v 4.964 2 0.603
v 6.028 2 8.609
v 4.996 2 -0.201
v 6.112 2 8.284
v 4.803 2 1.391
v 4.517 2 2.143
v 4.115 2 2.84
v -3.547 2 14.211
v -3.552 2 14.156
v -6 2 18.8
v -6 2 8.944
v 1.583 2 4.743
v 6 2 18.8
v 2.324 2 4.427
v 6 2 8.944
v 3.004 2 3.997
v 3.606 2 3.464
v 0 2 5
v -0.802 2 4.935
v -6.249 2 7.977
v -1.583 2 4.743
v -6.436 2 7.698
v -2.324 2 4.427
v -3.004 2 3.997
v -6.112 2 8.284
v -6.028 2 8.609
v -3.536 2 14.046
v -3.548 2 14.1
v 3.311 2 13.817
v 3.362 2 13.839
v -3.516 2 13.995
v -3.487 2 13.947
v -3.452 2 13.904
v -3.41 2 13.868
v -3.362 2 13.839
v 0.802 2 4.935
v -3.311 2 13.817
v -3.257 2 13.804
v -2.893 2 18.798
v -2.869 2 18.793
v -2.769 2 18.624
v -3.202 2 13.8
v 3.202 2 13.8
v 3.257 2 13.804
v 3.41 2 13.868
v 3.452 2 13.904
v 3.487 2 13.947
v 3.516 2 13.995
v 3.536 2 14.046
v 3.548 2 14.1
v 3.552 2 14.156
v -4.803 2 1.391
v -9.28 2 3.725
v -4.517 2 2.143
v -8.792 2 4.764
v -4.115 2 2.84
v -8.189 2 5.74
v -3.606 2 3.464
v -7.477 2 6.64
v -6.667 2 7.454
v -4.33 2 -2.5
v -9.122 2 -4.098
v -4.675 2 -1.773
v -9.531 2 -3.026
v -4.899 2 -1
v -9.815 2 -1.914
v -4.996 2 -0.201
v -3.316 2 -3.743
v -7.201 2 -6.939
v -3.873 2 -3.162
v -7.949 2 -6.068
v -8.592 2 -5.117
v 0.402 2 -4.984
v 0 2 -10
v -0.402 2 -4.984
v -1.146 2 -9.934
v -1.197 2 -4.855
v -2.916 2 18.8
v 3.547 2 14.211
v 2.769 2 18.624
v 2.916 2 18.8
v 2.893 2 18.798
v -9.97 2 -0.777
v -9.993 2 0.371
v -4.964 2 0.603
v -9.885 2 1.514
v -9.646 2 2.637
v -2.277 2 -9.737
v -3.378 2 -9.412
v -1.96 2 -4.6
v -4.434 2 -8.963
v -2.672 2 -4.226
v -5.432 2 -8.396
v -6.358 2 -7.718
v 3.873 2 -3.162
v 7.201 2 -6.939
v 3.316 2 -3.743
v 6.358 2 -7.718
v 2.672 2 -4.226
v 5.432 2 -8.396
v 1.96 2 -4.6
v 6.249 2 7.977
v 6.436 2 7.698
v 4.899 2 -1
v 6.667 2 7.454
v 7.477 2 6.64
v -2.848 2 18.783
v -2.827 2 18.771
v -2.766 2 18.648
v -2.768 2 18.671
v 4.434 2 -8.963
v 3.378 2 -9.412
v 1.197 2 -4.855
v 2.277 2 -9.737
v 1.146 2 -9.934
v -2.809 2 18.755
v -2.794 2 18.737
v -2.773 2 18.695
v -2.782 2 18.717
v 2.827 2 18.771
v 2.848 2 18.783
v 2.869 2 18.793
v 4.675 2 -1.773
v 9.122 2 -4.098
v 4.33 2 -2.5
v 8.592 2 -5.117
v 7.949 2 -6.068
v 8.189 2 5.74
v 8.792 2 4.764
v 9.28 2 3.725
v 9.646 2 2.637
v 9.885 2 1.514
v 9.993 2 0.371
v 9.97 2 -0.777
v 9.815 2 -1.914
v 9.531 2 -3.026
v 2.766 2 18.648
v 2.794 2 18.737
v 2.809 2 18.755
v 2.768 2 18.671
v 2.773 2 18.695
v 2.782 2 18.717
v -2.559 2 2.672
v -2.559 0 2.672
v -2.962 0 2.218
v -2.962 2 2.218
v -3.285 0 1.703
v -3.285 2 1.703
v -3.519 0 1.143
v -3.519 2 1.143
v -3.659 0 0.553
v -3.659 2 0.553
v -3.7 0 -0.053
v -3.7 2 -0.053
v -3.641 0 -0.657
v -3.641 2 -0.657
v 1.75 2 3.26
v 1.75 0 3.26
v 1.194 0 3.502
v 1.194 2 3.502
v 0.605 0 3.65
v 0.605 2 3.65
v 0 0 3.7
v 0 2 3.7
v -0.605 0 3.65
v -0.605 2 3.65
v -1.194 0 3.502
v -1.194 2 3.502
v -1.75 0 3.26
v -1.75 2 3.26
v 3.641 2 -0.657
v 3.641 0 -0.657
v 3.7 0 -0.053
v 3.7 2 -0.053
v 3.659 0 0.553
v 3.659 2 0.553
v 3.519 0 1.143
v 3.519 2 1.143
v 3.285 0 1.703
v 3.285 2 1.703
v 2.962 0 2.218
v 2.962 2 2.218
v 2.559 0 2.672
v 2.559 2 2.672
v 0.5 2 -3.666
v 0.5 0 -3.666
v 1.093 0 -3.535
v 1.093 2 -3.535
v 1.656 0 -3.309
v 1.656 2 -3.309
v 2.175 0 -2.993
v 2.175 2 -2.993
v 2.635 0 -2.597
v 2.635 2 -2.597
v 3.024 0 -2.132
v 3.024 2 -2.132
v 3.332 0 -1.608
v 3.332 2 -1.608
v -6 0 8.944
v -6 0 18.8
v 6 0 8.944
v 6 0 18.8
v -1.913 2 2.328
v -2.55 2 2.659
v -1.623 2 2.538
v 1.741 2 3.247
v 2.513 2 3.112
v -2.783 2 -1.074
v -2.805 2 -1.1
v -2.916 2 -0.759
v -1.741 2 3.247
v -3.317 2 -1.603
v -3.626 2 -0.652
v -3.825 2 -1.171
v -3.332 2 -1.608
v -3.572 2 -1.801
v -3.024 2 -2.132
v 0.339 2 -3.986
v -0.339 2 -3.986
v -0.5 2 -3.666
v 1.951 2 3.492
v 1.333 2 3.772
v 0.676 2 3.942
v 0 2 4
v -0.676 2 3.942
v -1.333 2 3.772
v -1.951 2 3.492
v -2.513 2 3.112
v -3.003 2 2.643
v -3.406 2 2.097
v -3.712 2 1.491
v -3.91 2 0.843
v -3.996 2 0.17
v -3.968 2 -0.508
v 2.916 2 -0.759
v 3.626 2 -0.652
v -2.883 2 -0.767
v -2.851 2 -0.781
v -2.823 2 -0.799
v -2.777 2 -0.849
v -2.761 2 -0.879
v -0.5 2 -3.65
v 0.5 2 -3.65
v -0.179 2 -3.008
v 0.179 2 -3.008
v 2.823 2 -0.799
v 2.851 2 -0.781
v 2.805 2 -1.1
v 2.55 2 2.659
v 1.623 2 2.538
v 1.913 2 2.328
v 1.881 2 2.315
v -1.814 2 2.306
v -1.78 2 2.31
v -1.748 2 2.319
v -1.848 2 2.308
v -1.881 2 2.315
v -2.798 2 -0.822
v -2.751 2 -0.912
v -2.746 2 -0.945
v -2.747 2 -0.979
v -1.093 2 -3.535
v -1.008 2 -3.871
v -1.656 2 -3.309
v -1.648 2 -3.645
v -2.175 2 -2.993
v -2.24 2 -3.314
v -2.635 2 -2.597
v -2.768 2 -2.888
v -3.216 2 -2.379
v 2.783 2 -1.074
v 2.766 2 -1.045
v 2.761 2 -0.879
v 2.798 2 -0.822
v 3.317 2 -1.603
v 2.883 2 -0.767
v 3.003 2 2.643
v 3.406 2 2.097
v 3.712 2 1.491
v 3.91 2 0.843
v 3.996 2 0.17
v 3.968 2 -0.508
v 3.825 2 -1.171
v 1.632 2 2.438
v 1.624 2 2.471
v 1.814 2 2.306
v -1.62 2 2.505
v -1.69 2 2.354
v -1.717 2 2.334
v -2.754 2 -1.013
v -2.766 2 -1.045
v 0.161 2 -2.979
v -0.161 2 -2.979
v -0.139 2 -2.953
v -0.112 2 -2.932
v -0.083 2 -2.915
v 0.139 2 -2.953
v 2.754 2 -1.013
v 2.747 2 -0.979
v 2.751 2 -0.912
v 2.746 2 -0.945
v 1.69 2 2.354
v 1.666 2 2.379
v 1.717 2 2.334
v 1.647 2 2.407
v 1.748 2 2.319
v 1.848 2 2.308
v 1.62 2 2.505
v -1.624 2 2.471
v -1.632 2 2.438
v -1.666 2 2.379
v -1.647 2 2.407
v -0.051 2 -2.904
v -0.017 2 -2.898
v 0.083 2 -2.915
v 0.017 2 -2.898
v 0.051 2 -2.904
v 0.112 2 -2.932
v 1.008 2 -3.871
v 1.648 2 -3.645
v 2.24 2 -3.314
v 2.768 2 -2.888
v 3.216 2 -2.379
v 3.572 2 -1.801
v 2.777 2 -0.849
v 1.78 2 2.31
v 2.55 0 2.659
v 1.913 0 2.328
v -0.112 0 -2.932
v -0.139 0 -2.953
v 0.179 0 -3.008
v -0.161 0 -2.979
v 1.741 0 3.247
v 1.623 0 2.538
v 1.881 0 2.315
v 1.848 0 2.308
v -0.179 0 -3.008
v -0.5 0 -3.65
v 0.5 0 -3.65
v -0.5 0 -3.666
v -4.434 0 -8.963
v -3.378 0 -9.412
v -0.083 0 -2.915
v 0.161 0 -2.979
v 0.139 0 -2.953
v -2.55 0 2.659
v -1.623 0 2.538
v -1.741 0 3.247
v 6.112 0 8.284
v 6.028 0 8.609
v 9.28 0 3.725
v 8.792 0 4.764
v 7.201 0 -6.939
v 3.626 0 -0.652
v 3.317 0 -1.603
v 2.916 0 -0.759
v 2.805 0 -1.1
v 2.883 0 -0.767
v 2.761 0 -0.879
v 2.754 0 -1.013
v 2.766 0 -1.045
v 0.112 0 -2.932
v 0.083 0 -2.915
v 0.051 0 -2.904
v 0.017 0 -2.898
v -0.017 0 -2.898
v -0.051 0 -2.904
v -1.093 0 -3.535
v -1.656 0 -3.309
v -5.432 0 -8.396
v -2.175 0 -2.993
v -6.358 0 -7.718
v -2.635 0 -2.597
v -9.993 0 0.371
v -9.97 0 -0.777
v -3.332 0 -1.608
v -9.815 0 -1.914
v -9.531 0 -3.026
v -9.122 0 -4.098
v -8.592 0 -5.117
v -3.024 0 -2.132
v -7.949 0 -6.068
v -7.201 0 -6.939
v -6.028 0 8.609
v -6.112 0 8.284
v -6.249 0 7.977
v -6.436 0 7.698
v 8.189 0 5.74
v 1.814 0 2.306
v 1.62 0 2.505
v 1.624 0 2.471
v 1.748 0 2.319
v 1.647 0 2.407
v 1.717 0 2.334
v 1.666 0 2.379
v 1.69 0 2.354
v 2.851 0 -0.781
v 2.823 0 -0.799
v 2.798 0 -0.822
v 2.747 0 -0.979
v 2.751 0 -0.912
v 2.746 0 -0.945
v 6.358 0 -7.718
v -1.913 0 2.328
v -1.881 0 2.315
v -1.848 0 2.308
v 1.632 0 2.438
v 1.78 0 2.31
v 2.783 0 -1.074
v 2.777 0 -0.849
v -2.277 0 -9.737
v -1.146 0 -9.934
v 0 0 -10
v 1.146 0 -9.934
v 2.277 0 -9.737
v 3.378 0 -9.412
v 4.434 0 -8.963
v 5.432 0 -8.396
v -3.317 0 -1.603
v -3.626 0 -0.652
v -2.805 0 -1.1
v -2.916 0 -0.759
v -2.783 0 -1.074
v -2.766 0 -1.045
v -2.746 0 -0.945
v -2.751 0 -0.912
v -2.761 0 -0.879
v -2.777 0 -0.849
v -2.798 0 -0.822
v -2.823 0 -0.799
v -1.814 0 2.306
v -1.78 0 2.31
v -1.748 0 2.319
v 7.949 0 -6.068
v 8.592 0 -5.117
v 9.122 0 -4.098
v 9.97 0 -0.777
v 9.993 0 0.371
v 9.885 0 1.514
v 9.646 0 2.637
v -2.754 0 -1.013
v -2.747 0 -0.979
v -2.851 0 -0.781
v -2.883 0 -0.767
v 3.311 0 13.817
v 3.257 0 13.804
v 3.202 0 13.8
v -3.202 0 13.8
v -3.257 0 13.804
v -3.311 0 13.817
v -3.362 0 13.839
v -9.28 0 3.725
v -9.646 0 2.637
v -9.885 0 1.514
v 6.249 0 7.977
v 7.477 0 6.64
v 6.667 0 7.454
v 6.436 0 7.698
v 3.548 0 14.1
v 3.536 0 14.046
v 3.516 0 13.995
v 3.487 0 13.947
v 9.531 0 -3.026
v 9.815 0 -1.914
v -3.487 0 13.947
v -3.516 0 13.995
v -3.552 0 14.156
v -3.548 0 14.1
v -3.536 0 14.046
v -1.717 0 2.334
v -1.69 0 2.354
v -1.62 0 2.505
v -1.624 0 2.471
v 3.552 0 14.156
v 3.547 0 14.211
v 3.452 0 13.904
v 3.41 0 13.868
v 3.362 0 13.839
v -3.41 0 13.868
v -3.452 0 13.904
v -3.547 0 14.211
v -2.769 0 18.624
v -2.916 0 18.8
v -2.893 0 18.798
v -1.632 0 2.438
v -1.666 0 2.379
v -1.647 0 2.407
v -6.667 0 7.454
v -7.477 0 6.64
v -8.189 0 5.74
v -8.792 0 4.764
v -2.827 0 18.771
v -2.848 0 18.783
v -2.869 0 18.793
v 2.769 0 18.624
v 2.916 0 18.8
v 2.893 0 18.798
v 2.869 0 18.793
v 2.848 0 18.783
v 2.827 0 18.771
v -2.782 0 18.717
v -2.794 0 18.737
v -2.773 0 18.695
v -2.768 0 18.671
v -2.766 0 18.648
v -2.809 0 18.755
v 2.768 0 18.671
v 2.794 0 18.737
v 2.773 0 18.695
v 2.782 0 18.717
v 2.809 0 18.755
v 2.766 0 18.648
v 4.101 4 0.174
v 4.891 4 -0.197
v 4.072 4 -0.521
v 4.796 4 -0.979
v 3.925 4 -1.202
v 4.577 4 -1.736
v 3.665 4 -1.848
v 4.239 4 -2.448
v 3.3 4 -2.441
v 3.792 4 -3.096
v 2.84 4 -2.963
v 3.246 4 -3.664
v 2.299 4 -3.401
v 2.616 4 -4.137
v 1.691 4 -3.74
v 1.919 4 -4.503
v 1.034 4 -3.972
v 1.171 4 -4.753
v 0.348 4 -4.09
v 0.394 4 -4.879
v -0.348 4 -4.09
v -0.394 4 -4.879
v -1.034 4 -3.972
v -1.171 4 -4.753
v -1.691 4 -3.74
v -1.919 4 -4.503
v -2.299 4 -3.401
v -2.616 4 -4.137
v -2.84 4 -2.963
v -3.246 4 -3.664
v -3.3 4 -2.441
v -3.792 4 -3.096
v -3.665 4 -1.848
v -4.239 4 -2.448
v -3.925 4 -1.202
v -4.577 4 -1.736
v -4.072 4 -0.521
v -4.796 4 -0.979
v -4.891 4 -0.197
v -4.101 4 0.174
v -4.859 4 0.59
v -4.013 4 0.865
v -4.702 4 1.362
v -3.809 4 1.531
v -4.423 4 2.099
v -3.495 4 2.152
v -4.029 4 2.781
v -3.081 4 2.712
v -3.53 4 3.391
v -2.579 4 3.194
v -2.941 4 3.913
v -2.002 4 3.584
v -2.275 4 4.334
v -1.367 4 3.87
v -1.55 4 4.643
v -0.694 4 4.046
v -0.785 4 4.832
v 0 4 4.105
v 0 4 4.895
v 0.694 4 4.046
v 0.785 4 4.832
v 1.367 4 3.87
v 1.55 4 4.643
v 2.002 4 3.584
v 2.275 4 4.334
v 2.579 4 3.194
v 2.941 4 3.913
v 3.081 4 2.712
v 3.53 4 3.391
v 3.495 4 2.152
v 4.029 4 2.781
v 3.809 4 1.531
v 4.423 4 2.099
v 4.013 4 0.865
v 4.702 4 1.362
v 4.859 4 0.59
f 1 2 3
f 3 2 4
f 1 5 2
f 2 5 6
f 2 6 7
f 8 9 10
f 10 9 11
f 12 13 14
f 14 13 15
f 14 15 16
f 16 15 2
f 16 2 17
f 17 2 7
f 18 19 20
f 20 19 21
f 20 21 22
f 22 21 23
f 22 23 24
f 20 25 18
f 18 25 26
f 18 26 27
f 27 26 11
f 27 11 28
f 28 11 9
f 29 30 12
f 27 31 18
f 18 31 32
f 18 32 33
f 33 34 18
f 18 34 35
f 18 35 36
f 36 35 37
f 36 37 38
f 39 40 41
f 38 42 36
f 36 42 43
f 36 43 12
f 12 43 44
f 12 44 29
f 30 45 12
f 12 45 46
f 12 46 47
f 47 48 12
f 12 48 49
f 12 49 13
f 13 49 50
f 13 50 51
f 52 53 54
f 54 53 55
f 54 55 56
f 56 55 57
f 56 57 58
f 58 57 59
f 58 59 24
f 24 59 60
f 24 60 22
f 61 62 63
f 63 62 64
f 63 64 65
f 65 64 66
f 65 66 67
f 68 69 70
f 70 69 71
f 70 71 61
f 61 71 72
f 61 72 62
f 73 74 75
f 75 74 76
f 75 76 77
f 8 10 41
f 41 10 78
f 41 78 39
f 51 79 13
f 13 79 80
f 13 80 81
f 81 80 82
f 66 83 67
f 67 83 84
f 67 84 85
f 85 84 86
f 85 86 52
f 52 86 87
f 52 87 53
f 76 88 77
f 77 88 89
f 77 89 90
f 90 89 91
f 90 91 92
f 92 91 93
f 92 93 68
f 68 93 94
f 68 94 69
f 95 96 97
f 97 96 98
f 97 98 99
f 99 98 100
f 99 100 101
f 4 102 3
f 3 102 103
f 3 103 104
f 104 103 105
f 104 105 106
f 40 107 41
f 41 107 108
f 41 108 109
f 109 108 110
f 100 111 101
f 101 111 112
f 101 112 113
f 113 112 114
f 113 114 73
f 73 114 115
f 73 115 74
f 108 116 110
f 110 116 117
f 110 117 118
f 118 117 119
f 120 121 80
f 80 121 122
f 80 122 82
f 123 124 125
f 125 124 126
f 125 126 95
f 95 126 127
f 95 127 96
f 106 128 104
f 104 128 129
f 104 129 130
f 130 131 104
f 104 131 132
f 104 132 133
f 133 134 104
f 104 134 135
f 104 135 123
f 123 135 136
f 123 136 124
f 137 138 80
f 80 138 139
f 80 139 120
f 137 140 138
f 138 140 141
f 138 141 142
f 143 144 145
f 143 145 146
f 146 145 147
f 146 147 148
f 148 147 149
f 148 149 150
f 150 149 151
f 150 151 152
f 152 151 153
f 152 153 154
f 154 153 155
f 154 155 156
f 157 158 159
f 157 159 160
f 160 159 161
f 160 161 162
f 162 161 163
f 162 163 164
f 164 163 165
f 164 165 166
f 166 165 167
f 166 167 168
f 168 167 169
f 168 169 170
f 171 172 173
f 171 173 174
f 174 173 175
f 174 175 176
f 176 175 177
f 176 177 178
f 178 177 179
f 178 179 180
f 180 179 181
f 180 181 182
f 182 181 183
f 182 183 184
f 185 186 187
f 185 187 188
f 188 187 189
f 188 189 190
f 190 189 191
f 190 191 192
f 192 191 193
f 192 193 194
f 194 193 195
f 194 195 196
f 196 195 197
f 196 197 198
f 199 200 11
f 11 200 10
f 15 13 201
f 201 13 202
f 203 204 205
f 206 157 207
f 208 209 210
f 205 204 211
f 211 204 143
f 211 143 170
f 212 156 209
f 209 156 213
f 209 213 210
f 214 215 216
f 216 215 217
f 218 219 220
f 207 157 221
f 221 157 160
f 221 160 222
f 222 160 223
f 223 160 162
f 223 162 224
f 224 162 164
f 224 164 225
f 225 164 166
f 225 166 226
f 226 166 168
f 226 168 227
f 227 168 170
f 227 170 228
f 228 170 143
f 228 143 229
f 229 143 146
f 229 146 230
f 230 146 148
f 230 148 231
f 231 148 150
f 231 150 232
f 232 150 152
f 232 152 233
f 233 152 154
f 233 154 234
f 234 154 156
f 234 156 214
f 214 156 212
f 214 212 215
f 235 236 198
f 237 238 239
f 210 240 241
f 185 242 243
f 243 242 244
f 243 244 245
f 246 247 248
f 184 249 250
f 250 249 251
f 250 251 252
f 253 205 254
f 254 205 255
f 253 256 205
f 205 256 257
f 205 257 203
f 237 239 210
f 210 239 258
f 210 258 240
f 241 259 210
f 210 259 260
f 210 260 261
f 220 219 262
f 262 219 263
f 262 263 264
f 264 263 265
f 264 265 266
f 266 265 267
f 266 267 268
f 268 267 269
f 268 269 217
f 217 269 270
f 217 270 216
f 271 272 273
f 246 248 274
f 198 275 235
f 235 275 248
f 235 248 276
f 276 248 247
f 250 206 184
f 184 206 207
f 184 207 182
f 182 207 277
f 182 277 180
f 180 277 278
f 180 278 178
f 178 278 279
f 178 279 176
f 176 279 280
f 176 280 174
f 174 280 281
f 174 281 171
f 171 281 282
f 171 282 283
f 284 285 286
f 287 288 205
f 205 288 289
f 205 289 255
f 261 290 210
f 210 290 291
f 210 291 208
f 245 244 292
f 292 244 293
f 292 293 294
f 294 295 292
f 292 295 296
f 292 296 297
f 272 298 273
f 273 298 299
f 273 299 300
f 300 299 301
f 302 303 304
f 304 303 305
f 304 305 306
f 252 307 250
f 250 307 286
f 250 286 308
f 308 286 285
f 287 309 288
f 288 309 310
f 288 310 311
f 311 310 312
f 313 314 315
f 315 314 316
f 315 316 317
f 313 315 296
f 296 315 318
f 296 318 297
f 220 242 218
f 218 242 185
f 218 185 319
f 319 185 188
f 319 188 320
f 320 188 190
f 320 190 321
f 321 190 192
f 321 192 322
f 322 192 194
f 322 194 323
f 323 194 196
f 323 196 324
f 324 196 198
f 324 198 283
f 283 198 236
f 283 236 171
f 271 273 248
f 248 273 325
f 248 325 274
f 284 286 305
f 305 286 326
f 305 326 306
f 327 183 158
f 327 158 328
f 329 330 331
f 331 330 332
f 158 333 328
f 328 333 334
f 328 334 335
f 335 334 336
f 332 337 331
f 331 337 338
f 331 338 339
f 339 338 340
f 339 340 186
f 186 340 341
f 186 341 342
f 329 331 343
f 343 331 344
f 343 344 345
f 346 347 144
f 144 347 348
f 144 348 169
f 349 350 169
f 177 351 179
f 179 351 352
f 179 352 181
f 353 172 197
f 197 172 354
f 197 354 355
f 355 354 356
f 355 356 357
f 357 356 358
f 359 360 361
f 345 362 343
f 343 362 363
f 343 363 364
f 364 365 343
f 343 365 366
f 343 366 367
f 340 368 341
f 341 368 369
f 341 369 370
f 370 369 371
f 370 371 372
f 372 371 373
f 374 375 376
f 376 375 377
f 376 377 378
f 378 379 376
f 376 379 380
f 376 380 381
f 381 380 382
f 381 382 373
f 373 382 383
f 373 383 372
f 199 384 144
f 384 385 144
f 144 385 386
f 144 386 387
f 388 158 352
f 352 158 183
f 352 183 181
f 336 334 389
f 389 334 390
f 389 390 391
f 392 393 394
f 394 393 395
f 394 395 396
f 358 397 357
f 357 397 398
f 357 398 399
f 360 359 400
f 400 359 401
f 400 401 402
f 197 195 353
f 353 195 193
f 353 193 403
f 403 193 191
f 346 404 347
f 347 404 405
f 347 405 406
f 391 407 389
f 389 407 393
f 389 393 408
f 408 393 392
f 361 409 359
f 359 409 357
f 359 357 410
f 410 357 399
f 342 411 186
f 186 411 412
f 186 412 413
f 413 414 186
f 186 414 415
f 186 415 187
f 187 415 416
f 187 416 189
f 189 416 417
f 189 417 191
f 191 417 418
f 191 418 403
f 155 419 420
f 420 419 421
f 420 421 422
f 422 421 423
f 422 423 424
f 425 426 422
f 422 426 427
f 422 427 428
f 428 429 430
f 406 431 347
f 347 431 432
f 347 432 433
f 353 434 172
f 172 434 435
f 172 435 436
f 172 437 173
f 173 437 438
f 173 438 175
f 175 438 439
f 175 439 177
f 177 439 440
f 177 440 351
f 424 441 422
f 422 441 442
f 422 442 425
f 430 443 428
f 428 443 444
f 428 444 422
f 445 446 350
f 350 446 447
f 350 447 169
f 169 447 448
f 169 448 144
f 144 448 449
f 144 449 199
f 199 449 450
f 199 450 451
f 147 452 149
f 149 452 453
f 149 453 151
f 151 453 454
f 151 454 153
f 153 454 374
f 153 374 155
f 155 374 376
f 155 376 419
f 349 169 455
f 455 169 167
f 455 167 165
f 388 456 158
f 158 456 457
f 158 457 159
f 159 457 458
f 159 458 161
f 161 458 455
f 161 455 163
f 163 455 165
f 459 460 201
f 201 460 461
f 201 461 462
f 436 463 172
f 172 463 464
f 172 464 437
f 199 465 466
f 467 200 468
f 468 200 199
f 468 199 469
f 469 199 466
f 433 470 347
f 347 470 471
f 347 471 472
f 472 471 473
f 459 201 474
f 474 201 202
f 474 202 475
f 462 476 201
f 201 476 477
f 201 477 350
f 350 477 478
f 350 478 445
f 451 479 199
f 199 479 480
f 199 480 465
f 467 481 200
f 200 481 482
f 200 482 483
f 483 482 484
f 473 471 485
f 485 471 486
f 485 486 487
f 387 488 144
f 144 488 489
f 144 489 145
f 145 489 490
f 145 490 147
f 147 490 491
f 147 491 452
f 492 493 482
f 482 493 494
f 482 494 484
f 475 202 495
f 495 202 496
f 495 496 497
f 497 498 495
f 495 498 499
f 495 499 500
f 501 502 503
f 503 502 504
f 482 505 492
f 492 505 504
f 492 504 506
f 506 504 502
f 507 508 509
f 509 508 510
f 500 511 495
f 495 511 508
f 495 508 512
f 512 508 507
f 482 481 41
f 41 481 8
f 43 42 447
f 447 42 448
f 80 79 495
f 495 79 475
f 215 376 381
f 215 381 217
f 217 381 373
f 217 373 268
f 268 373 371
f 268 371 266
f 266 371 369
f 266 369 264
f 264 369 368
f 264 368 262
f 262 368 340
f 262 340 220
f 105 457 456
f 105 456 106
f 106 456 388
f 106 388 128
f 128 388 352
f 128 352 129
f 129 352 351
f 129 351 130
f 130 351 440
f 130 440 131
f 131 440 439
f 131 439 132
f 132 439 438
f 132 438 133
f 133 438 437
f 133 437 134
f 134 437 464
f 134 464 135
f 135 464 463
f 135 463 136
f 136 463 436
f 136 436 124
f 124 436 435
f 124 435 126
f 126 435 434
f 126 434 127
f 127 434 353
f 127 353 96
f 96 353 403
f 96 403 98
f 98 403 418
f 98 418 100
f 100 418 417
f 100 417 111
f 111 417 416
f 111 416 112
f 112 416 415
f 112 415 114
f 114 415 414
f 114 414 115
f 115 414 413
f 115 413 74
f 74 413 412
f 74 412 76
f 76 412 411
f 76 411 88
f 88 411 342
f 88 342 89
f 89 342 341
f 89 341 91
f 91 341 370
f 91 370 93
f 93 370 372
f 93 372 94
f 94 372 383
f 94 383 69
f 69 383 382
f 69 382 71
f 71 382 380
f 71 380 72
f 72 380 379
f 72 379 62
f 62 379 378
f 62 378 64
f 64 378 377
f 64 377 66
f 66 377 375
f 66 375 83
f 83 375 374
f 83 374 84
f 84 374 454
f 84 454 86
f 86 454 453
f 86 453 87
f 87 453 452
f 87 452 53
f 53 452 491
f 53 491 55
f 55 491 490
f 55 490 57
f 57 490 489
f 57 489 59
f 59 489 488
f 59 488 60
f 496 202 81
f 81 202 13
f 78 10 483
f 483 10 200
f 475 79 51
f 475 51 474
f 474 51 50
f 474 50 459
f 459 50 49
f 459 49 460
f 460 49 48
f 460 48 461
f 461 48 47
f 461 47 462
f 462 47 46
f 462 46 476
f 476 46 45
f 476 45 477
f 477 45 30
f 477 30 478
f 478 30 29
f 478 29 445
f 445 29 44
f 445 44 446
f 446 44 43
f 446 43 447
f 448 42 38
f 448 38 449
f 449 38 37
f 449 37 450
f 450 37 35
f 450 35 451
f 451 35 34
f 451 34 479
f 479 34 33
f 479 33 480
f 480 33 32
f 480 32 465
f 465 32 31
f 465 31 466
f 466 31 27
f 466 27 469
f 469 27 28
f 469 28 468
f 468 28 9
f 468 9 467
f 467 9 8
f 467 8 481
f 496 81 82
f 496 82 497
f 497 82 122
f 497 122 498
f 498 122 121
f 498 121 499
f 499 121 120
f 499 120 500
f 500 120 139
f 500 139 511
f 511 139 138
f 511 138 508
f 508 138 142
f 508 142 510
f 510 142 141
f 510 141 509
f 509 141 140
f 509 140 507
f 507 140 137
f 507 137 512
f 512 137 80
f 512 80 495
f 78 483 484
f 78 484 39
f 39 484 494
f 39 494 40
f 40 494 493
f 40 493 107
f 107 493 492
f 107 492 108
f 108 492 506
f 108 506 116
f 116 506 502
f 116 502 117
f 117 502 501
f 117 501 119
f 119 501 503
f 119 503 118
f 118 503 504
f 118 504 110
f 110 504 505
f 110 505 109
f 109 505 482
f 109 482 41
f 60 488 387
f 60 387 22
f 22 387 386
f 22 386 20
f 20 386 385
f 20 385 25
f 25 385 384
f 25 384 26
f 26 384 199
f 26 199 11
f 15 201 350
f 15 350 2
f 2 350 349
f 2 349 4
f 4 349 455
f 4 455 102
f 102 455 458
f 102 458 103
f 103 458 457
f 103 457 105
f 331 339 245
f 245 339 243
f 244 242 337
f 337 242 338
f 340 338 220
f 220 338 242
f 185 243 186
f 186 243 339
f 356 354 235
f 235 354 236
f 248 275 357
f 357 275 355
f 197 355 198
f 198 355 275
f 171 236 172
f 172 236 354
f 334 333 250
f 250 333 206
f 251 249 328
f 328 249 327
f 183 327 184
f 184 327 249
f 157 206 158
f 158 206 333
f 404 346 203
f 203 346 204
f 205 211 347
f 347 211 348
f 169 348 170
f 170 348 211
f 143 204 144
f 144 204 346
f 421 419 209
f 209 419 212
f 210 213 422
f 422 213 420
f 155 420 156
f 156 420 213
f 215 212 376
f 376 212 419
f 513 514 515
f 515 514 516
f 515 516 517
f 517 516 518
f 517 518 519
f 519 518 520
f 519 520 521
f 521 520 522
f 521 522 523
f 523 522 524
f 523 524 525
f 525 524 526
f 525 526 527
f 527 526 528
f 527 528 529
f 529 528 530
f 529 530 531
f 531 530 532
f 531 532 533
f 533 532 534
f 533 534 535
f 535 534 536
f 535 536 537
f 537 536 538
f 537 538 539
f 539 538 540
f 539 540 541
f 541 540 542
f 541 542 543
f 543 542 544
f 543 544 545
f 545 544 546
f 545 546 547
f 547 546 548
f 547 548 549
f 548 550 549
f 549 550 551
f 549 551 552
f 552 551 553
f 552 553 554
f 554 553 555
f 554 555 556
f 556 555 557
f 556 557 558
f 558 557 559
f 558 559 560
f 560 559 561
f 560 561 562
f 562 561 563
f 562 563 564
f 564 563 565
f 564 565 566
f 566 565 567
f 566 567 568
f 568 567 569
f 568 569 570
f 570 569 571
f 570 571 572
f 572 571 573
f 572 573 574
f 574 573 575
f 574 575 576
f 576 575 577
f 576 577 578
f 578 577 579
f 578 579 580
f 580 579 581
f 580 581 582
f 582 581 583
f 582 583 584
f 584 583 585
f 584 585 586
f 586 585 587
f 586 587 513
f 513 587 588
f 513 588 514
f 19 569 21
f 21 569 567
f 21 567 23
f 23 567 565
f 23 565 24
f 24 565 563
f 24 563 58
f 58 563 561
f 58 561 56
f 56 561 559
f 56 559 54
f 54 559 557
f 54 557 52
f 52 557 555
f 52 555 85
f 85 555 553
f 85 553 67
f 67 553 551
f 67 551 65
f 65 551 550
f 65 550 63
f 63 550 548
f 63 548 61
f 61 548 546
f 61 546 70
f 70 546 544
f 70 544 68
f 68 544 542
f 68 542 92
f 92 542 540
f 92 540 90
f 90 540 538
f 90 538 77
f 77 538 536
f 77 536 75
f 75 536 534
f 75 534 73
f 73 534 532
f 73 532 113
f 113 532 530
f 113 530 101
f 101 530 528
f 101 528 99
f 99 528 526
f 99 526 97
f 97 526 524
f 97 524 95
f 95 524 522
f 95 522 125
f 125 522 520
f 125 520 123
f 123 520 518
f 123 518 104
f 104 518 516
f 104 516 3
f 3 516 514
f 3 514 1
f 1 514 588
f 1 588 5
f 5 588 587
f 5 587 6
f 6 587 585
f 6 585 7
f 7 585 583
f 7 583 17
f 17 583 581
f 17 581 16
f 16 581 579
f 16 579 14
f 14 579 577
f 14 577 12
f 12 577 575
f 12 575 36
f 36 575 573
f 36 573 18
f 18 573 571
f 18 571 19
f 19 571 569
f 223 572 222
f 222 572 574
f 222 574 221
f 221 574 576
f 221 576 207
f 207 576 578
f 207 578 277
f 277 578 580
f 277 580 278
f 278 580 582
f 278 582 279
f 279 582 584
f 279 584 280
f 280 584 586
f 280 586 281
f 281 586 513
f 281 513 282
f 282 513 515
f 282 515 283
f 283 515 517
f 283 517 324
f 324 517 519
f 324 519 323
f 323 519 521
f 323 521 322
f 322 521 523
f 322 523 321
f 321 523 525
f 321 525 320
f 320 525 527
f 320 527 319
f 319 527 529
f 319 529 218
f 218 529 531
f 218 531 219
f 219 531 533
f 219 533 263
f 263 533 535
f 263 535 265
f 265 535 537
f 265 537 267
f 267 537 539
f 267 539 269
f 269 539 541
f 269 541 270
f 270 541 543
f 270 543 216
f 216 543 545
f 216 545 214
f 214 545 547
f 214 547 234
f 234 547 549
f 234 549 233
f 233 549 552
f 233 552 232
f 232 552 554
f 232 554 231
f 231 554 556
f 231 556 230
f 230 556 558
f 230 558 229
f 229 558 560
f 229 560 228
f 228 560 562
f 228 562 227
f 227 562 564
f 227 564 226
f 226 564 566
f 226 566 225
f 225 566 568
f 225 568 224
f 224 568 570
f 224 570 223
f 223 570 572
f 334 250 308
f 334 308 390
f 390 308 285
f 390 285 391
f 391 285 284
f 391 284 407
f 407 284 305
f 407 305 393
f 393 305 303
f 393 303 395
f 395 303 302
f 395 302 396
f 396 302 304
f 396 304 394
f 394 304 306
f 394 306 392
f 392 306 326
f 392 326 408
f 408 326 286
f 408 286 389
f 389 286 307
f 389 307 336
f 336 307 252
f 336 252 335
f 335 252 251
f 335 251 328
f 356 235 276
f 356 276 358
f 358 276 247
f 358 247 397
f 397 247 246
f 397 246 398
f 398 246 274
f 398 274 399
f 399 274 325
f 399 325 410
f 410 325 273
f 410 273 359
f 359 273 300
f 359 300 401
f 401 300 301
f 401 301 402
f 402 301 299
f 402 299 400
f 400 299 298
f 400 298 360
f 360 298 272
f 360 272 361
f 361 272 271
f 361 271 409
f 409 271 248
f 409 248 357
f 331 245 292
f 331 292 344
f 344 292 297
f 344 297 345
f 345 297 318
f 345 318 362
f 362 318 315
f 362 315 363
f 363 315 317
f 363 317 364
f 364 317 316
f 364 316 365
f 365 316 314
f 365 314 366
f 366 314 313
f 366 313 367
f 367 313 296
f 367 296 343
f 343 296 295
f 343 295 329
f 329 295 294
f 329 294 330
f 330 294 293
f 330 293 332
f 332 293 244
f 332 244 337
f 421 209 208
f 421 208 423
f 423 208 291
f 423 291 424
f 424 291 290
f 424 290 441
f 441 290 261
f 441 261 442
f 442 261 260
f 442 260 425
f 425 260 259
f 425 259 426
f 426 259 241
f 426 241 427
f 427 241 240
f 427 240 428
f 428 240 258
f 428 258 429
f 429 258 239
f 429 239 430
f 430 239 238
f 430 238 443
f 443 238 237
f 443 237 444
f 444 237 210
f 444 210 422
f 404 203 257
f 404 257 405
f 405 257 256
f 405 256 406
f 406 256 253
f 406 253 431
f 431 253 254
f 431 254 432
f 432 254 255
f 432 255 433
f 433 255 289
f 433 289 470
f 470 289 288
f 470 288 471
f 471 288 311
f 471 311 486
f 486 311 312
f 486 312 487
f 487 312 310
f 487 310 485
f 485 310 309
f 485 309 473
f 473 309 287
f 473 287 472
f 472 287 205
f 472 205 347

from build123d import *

# Parameters (mm, degrees)
SKETCH1_R           = 3.7
BOSS_EXTRUDE1_DEPTH = 2
SKETCH2_R           = 10
SKETCH2_R_2         = 3.8
BOSS_EXTRUDE2_DEPTH = 2
SKETCH4_W           = 12
SKETCH4_H           = 0.2
CUT_EXTRUDE1_DEPTH  = 4
FILLET3_R           = 0.35
FILLET4_R           = 0.15
FILLET6_R           = 2
BOSS_EXTRUDE6_DEPTH = 2
CIRPATTERN1_COUNT   = 5
SKETCH11_R          = 5
SKETCH11_R_2        = 4
BOSS_EXTRUDE7_DEPTH = 2
BOSS_EXTRUDE7_DRAFT = 3
FILLET10_R          = 0.2


with BuildPart() as part:
    # Sketch1 → Boss-Extrude1 (new body)
    with BuildSketch(Plane(origin=(0, 0, 0), x_dir=(1, 0, 0), z_dir=(0, 1, 0))):
        Polygon((-6, 6), (-6, -13.291502622), (-6, -19), (-2.70227506, -19), (-3.619175359, -13.8), (0, -13.8), (3.619175359, -13.8), (2.70227506, -19), (6, -19), (6, -13.291502622), (6, 6), align=None)
        with Locations(Location((0, 0, 0), (0, 0, 270))):
            Circle(SKETCH1_R, mode=Mode.SUBTRACT)
    extrude(amount=BOSS_EXTRUDE1_DEPTH)

    # Sketch2 → Boss-Extrude2 (add)
    with BuildSketch(Plane(origin=(0, 0, 0), x_dir=(1, 0, 0), z_dir=(0, 1, 0))):
        Circle(SKETCH2_R)
        Circle(SKETCH2_R_2, mode=Mode.SUBTRACT)
    extrude(amount=BOSS_EXTRUDE2_DEPTH)

    # Sketch4 → Cut-Extrude1 (cut)
    with BuildSketch(Plane(origin=(0, 2, 0), x_dir=(1, 0, 0), z_dir=(0, 1, 0))):
        with Locations((0, -18.9)):
            Rectangle(SKETCH4_W, SKETCH4_H)
    extrude(amount=-CUT_EXTRUDE1_DEPTH, mode=Mode.SUBTRACT)

    # Fillet3
    fillet3_edges = [part.edges().sort_by_distance(p)[0] for p in [
        (3.619175359, 1, 13.8),
        (-3.619175359, 1, 13.8),
    ]]
    fillet(fillet3_edges, radius=FILLET3_R)

    # Fillet4
    fillet4_edges = [part.edges().sort_by_distance(p)[0] for p in [
        (2.737540456, 1, 18.8),
        (-2.737540456, 1, 18.8),
    ]]
    fillet(fillet4_edges, radius=FILLET4_R)

    # Fillet6
    fillet6_edges = [part.edges().sort_by_distance(p)[0] for p in [
        (6, 1, 8),
        (-6, 1, 8),
    ]]
    fillet(fillet6_edges, radius=FILLET6_R)

    # Sketch8 → Boss-Extrude6 (add)
    with BuildSketch(Plane(origin=(0, 2, 0), x_dir=(1, 0, 0), z_dir=(0, 1, 0))):
        Polygon((-0.5, 3.65), (0, 2.65), (0.5, 3.65), (0.5, 4.15), (-0.5, 4.15), align=None)
    boss_extrude6 = extrude(amount=-BOSS_EXTRUDE6_DEPTH)

    # CirPattern1: Boss-Extrude6 ×5 about axis
    cirpattern1_axis = Axis((0, 0, 0), (0, 1, 0))
    for i in range(1, CIRPATTERN1_COUNT):
        add(boss_extrude6.rotate(cirpattern1_axis, i * 360 / CIRPATTERN1_COUNT))


with BuildPart() as boss_extrude7_tool:
    # Sketch11 → Boss-Extrude7 (with draft: the straight prism first)
    with BuildSketch(Plane(origin=(0, 2, 0), x_dir=(1, 0, 0), z_dir=(0, 1, 0))):
        Circle(SKETCH11_R)
        Circle(SKETCH11_R_2, mode=Mode.SUBTRACT)
    extrude(amount=BOSS_EXTRUDE7_DEPTH)
    # Boss-Extrude7: the draft: its side faces are tilted about the plane it starts from
    boss_extrude7_sides = [boss_extrude7_tool.faces().sort_by_distance(p)[0] for p in [
        (-5, 3, 0),
        (-4, 3, 0),
    ]]
    draft(boss_extrude7_sides, Plane(origin=(0, 2, 0), x_dir=(1, 0, 0), z_dir=(0, 1, 0)), BOSS_EXTRUDE7_DRAFT)


with BuildPart() as part_1:
    add(part.part)

    # Boss-Extrude7: add boss_extrude7_tool
    add(boss_extrude7_tool.part)

    # Fillet10
    fillet10_edges = [part_1.edges().sort_by_distance(p)[0] for p in [
        (0, 1, -2.65),
        (2.520299768, 1, -0.818895035),
        (1.557630919, 1, 2.143895035),
        (-1.557630919, 1, 2.143895035),
        (-2.520299768, 1, -0.818895035),
    ]]
    fillet(fillet10_edges, radius=FILLET10_R)


solid = part_1.part
